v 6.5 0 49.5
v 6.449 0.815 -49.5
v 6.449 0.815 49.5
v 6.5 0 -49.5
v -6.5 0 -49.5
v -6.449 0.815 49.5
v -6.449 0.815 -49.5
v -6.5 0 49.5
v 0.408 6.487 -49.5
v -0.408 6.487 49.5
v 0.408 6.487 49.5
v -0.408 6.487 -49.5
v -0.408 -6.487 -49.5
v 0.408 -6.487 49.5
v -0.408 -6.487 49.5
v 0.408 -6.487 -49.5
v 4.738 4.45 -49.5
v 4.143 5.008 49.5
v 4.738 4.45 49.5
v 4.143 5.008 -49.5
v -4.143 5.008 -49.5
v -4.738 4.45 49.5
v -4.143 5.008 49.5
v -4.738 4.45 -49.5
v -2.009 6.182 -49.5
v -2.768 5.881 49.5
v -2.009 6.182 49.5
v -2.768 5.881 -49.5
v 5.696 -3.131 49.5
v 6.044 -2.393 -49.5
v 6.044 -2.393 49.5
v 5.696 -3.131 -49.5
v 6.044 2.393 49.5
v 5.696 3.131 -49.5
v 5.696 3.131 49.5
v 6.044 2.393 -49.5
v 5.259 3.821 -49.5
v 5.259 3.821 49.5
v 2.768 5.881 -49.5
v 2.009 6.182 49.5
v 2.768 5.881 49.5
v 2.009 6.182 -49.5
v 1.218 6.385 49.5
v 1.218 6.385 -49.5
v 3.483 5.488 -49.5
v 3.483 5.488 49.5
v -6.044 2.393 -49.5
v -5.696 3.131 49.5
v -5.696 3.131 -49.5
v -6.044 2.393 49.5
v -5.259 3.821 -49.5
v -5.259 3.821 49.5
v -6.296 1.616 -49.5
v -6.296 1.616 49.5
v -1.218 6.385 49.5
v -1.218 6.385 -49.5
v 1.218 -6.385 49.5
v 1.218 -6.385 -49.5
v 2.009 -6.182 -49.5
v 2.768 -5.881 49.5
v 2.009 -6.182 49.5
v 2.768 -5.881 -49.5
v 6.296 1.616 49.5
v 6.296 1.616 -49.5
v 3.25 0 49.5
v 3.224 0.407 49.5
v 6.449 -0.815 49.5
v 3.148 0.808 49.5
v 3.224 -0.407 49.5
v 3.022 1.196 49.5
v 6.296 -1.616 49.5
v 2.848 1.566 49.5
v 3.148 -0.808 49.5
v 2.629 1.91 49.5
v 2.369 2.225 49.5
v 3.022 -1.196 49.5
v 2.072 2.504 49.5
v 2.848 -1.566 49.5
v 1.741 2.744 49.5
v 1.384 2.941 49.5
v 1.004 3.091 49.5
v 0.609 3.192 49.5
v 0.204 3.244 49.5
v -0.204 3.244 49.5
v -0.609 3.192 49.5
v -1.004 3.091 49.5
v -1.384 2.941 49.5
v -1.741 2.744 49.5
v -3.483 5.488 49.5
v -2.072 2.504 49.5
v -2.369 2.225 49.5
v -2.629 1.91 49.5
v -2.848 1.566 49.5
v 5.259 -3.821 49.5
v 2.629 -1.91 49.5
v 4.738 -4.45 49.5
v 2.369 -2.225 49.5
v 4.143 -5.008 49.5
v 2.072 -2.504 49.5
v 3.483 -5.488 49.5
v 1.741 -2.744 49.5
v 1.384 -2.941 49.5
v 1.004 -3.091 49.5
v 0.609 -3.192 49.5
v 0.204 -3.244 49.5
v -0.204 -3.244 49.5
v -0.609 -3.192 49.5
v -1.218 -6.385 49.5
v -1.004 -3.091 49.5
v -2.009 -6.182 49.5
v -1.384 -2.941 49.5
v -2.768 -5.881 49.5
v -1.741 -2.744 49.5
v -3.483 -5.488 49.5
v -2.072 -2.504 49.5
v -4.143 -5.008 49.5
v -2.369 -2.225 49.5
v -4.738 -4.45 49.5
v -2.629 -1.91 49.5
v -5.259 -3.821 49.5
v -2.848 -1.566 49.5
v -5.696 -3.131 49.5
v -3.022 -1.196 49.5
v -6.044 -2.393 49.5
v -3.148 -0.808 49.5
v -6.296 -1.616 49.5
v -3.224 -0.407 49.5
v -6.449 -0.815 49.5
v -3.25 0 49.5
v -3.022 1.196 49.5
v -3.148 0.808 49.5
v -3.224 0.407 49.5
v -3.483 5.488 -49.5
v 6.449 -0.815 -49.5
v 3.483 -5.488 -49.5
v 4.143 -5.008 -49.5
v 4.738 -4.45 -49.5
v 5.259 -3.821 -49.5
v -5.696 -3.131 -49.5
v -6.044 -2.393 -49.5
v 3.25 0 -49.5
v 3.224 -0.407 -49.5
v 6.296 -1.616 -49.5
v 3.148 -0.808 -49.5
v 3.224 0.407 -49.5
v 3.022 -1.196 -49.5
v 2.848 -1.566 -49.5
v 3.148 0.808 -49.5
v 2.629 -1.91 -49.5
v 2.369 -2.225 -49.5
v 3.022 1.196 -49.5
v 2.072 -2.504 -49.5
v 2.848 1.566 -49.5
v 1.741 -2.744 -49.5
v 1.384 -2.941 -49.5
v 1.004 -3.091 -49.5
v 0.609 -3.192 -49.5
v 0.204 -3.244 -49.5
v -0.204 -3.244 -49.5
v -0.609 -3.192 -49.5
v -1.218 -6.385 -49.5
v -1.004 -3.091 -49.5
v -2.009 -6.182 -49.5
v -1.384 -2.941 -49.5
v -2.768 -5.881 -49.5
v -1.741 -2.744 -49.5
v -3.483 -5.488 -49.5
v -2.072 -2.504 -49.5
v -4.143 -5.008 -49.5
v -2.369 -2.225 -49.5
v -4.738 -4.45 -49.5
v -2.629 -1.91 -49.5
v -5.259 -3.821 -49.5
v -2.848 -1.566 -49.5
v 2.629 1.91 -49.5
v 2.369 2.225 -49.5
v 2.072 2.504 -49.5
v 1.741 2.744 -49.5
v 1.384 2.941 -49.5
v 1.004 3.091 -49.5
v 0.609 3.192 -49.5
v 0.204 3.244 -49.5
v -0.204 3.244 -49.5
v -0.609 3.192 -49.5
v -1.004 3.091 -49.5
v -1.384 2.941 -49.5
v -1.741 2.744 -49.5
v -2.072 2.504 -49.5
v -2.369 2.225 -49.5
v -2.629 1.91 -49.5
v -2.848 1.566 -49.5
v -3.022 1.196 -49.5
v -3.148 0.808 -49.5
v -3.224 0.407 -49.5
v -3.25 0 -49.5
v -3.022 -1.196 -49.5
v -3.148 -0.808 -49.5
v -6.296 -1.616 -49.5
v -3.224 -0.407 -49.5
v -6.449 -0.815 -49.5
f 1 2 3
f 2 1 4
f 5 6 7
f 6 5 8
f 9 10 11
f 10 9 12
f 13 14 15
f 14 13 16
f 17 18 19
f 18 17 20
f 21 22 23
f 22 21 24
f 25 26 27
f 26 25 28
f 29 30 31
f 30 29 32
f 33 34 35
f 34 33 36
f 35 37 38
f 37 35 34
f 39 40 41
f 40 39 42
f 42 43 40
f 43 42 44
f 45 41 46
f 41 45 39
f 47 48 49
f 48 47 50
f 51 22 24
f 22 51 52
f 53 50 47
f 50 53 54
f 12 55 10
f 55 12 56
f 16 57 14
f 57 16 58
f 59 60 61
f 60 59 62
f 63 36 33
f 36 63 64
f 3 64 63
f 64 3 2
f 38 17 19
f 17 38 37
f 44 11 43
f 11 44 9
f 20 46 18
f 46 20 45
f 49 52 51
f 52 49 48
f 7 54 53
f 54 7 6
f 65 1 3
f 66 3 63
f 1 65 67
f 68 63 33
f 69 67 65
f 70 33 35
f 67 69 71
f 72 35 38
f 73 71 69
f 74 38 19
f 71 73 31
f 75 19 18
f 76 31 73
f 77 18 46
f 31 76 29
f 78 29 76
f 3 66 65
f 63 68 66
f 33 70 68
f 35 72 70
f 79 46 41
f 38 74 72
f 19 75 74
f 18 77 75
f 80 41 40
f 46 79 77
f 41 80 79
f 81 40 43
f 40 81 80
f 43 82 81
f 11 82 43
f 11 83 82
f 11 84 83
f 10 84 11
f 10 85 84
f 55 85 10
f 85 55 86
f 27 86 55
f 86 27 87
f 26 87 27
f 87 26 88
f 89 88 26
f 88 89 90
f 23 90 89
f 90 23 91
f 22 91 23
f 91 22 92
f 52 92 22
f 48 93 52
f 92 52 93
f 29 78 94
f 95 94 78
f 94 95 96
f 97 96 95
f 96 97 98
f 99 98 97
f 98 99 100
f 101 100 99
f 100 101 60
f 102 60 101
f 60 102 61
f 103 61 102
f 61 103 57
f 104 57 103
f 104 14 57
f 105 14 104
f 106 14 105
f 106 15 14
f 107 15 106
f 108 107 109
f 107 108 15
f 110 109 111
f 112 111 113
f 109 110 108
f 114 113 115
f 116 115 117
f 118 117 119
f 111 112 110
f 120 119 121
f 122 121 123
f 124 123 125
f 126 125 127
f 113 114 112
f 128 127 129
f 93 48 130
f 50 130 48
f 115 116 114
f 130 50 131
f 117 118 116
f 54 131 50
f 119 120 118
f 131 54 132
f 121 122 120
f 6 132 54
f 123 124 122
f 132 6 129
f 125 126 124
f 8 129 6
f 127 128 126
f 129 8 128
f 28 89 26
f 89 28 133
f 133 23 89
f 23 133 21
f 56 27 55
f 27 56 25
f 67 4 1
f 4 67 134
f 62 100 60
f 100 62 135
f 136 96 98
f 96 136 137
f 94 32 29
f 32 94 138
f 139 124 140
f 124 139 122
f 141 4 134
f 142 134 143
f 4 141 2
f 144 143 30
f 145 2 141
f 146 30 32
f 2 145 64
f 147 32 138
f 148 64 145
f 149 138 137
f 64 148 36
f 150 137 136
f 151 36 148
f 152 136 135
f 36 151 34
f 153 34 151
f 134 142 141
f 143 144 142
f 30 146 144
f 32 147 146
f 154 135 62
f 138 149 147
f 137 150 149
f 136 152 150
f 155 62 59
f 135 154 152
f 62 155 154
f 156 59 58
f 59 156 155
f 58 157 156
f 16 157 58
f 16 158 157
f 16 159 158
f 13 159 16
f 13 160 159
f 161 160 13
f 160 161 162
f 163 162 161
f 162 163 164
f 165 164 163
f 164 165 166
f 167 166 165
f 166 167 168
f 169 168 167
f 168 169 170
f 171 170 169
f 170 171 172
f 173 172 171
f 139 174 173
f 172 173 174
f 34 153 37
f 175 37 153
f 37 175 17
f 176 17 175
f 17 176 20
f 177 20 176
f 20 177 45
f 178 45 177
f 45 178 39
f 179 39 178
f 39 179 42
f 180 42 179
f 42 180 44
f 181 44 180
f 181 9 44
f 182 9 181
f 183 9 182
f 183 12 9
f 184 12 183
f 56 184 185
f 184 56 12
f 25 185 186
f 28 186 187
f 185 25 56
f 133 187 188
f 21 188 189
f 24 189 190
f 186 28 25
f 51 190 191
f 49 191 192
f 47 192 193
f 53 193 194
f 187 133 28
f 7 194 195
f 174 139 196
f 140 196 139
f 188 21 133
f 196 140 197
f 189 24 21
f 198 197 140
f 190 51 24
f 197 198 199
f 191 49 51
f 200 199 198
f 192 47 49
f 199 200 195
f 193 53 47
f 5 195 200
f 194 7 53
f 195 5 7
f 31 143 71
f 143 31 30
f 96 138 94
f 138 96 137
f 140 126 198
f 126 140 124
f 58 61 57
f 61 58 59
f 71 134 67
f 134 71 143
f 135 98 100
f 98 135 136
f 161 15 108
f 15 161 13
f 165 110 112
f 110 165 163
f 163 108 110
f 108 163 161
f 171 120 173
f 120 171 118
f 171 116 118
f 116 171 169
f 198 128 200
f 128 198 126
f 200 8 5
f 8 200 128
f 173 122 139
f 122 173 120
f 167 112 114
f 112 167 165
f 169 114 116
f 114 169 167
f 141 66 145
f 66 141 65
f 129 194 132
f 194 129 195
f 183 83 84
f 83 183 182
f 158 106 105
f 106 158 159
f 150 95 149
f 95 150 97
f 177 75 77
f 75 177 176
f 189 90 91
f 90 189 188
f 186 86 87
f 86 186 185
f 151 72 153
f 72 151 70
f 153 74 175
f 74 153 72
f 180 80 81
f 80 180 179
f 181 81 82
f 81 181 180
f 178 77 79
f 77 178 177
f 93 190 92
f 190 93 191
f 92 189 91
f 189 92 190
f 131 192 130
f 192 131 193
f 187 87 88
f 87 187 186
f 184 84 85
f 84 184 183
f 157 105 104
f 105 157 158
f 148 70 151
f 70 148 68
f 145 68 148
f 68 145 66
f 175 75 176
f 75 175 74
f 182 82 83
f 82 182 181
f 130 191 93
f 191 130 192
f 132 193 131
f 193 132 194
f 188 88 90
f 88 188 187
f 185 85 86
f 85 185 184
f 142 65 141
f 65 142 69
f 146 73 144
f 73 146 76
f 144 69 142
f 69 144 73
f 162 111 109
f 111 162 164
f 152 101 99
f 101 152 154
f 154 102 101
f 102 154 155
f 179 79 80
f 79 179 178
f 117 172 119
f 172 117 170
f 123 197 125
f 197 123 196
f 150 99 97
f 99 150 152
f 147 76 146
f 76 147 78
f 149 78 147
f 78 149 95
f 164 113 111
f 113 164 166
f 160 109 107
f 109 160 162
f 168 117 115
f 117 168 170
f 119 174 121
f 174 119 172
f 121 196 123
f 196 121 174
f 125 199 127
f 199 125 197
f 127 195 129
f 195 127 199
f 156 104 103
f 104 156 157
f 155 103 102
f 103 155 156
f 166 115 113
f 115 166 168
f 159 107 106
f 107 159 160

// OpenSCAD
$fn = 50;


difference() {
	union() {
		translate(v = [0, 0, -49.5000000000]) {
			cylinder(h = 99, r = 6.5000000000);
		}
	}
	union() {
		translate(v = [0, 0, -100.0000000000]) {
			cylinder(h = 200, r = 3.2500000000);
		}
	}
}
